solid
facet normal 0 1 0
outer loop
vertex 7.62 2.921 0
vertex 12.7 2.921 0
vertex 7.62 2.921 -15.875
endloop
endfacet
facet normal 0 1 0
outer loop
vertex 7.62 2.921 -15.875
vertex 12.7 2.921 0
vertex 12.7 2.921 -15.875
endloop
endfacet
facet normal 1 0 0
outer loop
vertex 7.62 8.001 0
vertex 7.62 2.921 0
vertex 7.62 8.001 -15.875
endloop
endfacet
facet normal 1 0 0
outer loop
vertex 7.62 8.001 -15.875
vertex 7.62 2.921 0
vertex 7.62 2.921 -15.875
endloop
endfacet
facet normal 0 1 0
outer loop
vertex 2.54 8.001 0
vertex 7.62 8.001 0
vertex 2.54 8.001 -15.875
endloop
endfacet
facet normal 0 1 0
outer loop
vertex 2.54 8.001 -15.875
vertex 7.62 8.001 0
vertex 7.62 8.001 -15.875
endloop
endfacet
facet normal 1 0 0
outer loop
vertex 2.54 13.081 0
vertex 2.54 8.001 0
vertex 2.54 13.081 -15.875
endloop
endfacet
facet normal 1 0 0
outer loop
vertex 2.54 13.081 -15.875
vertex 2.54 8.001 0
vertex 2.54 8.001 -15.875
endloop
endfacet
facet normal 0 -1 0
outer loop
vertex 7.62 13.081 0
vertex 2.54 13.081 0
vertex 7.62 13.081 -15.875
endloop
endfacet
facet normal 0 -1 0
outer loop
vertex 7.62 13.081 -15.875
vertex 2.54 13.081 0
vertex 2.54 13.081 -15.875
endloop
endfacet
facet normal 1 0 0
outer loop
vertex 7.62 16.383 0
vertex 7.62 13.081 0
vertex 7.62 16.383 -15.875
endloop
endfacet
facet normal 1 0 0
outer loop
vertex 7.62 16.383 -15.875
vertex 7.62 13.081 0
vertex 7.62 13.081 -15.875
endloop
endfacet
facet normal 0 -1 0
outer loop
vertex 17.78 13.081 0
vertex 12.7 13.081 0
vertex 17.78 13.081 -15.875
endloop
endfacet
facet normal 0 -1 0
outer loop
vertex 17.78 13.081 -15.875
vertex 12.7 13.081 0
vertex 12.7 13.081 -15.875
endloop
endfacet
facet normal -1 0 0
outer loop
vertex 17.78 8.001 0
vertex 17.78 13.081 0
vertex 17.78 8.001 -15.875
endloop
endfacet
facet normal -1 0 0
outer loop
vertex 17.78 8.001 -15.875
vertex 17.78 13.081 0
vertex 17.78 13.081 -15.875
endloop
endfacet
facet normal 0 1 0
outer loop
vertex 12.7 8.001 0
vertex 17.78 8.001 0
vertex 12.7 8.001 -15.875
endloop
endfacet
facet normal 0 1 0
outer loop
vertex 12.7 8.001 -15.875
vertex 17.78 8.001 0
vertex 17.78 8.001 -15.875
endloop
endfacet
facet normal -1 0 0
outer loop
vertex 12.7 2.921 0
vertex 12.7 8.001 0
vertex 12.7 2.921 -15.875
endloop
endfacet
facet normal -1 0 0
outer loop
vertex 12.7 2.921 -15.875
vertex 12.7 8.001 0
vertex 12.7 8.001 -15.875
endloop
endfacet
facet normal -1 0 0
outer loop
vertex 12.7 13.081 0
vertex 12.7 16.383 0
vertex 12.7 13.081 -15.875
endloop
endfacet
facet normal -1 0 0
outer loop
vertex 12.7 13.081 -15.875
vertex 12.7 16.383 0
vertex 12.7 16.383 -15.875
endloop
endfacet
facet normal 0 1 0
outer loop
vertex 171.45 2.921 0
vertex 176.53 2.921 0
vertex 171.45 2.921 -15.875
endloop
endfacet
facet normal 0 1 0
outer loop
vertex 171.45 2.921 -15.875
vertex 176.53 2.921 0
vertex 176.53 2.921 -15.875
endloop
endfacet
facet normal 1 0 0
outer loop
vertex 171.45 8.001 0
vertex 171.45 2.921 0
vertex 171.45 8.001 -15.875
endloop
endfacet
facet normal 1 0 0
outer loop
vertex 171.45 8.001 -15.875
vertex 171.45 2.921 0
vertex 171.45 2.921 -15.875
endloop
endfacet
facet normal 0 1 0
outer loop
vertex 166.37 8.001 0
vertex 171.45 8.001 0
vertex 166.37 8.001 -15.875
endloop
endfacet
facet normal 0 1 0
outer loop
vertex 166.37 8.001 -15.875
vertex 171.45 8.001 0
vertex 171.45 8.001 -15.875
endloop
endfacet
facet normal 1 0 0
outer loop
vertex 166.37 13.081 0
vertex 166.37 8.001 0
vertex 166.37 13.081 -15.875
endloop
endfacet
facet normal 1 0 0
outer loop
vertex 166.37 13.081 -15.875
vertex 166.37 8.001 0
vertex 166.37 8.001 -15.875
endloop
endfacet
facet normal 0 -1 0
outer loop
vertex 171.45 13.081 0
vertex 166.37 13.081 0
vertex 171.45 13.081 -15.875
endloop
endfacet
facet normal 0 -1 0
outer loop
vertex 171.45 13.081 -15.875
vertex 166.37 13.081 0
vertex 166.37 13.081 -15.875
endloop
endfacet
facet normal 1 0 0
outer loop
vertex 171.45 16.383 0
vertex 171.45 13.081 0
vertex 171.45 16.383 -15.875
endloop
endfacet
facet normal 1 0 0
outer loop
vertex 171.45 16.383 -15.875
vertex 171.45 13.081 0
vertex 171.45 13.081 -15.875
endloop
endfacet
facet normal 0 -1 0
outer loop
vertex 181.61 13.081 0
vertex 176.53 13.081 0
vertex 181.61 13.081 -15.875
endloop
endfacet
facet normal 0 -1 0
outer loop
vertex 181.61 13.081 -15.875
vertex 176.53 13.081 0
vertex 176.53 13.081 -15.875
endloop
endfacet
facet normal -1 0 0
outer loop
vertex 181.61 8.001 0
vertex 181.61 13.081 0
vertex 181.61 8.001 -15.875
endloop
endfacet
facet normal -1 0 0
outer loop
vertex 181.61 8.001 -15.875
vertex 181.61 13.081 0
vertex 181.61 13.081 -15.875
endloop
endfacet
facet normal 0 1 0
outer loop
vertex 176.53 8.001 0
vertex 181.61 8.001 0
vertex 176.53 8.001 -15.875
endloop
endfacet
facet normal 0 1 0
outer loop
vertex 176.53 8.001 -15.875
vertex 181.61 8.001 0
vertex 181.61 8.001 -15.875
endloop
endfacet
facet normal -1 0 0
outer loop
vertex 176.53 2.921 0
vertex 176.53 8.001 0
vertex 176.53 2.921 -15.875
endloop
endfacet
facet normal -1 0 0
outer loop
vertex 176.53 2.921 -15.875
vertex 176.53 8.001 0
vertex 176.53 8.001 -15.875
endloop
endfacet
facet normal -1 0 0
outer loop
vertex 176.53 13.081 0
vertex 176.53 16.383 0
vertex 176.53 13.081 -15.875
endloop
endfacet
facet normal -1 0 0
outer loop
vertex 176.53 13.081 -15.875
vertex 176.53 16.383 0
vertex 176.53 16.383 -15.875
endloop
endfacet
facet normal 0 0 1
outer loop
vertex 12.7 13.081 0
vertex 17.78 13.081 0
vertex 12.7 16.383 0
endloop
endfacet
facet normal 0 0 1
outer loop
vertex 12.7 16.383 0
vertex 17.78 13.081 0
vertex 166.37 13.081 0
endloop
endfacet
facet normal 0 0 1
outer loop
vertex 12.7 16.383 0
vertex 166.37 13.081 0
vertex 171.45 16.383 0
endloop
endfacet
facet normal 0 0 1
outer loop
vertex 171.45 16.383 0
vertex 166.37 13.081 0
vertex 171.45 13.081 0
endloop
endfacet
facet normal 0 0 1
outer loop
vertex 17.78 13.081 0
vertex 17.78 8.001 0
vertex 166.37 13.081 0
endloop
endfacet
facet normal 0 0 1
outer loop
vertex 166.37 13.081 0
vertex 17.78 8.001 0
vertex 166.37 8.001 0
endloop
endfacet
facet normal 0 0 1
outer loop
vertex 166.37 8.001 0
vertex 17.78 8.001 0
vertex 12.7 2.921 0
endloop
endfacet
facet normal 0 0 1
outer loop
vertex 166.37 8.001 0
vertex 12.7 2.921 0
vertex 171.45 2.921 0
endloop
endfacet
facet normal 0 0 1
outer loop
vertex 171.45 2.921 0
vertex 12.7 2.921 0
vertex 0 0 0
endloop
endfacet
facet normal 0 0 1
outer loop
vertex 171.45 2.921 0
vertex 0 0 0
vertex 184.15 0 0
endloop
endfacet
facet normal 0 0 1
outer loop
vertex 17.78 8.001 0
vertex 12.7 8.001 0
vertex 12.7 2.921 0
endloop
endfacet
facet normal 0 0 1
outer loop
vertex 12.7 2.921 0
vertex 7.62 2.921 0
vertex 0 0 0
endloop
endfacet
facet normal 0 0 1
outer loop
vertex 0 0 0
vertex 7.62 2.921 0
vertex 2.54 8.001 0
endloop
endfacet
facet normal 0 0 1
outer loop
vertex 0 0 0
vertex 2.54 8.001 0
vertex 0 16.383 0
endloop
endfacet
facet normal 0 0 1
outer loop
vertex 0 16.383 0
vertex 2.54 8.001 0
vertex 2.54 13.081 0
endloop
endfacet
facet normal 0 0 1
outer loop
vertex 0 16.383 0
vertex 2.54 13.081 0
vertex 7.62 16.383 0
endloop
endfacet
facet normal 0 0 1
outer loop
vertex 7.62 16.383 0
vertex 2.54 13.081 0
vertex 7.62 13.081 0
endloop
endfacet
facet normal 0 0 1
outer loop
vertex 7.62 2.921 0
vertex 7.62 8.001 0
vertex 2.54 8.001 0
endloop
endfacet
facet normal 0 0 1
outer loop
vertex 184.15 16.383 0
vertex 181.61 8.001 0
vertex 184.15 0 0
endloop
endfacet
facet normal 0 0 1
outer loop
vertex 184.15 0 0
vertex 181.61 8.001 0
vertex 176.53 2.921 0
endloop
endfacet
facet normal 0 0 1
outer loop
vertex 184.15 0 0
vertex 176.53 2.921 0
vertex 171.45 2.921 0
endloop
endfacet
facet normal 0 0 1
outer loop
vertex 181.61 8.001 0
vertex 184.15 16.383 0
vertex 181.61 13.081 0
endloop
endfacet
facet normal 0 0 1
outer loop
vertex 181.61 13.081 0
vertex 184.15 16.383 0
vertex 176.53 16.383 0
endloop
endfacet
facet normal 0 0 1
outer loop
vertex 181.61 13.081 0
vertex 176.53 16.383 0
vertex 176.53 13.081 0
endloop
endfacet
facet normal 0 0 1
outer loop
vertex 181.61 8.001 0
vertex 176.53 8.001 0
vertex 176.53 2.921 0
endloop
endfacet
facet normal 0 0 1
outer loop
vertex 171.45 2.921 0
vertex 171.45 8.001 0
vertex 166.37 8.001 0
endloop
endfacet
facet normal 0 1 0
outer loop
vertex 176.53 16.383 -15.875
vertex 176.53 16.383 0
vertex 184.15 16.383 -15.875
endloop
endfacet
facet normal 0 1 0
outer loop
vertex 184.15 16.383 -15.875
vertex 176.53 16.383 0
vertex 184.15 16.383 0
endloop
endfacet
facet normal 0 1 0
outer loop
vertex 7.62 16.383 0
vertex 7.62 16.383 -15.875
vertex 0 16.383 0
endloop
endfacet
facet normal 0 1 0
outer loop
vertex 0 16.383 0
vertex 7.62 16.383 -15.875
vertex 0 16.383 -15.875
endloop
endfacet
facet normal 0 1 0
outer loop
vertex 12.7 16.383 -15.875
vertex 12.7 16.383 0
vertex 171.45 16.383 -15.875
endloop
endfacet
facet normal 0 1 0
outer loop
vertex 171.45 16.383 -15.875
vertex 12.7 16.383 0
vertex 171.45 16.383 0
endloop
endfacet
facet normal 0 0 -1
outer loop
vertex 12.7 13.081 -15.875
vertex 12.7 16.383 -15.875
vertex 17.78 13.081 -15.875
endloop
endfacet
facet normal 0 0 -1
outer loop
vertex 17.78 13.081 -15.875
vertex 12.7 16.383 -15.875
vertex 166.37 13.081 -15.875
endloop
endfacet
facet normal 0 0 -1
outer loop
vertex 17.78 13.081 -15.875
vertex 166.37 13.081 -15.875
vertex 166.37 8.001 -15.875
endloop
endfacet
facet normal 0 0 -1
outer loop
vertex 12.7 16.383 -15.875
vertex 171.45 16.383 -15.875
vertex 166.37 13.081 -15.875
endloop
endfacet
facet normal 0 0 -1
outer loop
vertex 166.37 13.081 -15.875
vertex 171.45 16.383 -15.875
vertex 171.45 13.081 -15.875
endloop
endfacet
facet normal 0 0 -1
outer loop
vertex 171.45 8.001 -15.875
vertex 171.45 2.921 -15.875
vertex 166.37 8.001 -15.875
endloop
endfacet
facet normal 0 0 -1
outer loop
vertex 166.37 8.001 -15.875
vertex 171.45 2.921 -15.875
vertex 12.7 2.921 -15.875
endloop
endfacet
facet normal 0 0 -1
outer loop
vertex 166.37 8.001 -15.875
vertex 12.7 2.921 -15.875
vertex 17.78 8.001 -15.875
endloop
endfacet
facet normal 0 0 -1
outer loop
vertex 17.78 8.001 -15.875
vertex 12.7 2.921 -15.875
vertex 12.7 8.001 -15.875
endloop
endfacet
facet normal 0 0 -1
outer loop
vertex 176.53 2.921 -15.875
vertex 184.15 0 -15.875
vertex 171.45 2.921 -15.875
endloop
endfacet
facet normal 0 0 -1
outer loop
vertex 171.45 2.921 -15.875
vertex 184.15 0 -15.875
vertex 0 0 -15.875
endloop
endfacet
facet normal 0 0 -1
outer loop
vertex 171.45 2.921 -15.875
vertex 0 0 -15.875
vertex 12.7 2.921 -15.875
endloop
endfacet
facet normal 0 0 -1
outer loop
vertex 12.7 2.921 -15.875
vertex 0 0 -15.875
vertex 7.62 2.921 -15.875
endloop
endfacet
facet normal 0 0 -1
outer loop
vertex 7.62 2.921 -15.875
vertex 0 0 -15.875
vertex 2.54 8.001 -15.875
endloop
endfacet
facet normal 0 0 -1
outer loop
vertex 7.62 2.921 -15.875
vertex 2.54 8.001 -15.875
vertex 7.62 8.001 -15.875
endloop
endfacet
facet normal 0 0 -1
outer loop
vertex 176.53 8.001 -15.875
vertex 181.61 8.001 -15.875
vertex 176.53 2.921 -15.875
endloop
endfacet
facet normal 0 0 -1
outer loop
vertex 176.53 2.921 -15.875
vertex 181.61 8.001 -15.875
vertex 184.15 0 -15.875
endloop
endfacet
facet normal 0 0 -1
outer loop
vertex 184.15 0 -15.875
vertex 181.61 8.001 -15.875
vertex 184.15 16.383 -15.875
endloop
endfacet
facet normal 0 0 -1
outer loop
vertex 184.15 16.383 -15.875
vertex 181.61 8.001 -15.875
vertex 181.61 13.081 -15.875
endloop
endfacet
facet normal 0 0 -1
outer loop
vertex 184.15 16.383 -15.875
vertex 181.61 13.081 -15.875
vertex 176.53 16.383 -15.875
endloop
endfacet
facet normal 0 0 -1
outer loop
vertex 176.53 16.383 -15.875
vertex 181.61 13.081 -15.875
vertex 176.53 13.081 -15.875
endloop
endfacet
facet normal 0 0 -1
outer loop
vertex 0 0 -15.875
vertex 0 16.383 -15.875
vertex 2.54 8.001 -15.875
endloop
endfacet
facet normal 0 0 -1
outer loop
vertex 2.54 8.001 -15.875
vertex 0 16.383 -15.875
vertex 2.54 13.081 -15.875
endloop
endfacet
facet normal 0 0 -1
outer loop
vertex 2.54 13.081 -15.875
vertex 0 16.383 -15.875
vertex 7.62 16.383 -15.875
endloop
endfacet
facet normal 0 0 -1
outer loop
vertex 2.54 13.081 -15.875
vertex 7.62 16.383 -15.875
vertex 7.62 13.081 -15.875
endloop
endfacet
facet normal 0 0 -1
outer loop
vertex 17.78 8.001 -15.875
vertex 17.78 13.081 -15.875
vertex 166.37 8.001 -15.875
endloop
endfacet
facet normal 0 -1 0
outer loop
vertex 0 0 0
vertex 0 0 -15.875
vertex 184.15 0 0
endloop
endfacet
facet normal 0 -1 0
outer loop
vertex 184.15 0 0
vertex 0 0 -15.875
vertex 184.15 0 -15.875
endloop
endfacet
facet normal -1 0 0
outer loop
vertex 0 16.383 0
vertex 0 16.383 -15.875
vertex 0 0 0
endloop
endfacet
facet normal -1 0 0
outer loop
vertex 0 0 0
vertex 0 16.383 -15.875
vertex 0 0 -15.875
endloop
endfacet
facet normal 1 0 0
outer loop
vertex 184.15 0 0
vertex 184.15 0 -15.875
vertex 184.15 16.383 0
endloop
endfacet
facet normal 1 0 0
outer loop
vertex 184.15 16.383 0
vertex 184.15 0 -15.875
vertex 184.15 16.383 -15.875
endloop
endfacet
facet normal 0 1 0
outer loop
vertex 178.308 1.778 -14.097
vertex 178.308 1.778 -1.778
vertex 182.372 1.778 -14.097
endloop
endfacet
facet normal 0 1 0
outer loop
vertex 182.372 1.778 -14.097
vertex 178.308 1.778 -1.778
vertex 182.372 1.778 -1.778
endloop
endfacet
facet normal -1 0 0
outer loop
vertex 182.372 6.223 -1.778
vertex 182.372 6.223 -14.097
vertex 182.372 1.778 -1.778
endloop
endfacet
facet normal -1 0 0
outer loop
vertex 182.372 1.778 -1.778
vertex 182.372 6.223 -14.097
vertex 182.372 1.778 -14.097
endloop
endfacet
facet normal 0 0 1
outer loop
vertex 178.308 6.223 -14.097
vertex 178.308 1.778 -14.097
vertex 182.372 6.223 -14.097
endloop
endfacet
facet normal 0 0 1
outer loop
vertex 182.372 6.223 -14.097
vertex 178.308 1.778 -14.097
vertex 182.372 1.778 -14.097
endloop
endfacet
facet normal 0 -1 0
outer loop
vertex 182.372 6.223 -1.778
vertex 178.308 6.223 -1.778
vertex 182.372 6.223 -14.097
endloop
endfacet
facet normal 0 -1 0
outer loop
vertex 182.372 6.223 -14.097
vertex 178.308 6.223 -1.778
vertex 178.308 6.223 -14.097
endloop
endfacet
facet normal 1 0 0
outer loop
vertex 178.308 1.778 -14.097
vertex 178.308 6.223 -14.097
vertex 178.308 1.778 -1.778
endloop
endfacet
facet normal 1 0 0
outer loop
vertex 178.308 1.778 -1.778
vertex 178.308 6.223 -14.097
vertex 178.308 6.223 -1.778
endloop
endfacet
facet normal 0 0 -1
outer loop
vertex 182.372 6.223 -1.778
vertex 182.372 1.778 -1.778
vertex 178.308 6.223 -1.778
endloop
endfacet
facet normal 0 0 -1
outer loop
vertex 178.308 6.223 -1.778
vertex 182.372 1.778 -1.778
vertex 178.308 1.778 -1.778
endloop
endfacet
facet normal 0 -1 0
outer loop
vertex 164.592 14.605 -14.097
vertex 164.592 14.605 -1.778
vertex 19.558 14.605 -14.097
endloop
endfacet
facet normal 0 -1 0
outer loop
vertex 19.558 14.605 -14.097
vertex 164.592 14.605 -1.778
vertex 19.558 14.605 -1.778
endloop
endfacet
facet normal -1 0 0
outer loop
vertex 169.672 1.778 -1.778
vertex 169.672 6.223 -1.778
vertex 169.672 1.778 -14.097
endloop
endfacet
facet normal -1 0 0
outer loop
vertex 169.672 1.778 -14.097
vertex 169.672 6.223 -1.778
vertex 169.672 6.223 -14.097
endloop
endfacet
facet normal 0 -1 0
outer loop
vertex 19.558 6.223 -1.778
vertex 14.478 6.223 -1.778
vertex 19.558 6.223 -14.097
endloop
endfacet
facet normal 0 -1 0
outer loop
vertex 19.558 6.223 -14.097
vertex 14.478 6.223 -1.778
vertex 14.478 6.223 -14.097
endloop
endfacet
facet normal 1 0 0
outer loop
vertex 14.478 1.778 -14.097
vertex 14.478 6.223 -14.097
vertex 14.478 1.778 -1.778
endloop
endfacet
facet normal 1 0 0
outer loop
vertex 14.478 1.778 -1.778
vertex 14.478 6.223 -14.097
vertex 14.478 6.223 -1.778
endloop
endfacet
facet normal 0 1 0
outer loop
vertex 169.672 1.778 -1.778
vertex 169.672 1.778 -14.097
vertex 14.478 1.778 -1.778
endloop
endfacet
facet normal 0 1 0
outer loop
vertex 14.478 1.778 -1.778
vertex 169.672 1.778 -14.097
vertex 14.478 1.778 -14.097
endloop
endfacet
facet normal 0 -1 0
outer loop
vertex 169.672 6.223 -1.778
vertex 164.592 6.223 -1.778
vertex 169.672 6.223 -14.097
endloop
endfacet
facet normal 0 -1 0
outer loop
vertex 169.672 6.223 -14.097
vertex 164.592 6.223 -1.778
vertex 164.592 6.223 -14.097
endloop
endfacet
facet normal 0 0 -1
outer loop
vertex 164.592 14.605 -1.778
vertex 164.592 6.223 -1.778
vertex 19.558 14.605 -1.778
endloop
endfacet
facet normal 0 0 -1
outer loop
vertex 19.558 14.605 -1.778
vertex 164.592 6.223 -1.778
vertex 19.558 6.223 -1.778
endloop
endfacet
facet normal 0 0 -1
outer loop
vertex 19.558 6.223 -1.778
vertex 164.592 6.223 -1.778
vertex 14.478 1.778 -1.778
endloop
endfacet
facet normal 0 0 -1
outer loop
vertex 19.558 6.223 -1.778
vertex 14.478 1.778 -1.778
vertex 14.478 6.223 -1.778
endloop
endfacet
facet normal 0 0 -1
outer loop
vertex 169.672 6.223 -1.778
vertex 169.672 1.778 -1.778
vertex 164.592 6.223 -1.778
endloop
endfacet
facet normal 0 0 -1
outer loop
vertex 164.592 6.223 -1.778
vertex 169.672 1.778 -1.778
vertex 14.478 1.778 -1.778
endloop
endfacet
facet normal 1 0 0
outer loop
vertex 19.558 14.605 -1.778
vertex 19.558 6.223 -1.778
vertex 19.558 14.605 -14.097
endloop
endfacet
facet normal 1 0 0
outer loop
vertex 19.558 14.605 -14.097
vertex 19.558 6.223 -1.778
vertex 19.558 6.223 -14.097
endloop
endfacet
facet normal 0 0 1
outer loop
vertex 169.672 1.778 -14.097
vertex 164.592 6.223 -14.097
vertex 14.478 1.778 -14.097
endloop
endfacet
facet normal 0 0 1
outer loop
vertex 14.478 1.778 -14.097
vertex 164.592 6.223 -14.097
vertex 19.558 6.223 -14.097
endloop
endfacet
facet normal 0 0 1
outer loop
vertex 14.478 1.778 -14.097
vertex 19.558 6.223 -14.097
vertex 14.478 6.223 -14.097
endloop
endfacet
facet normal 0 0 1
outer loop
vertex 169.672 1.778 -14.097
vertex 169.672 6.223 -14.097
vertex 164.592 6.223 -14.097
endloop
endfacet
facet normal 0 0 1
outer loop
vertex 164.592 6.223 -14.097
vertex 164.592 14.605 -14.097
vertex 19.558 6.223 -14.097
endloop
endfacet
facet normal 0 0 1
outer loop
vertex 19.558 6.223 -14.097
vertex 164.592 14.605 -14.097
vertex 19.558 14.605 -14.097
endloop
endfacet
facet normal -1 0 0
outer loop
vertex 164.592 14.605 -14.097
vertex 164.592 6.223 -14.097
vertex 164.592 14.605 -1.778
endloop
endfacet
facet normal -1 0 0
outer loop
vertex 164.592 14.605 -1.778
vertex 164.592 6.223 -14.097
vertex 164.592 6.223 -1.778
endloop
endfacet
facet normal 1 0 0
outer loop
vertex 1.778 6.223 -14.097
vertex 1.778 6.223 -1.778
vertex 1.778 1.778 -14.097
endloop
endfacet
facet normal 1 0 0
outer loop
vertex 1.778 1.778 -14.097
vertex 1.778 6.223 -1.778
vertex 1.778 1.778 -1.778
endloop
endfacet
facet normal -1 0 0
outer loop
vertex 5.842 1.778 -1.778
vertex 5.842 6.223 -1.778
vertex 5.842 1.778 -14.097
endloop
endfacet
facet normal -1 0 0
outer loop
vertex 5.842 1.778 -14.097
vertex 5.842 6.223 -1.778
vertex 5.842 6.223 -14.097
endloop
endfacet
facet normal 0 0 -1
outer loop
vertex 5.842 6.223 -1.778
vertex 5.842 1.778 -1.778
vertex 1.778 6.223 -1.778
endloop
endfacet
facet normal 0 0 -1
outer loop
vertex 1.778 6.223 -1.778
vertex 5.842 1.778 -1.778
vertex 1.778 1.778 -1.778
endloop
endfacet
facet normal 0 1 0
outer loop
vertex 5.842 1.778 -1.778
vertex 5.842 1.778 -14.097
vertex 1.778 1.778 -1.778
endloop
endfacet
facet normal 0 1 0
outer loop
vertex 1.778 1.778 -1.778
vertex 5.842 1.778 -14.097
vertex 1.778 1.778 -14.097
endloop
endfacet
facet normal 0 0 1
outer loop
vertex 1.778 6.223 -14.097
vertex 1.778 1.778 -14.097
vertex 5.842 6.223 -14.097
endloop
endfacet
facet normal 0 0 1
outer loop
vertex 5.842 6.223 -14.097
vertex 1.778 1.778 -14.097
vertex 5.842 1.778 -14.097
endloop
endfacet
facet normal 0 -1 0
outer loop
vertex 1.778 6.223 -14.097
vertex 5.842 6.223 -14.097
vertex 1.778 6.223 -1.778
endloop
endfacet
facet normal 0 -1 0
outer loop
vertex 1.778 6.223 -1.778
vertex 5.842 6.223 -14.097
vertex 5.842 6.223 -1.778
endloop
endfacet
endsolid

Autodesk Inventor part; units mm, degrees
ref_plane "YZ Plane" through (0, 0, 0) normal (1, 0, 0) x (0, 1, 0)
ref_plane "XZ Plane" through (0, 0, 0) normal (0, 1, 0) x (-1, 0, 0)
ref_plane "XY Plane" through (0, 0, 0) normal (0, 0, 1) x (1, 0, 0)
sketch "Sketch1" plane through (0, 0, 0) normal (1, 0, 0) x (0, 1, 0)
  line L0 (0, 0) -> (16.383, 0)
  line L1 (16.383, 0) -> (16.383, -15.875)
  line L2 (16.383, -15.875) -> (0, -15.875)
  line L3 (0, -15.875) -> (0, 0)
  dimension "d0" = 16.383
  dimension "d1" = 15.875
extrude "Extrusion1" add sketch "Sketch1" along normal blind 184.15
sketch "Sketch2" plane through (0, 0, -15.875) normal (0, 0, -1) x (-1, 0, 0)
  line L0 (-184.15, 16.383) -> (-184.15, 0) projected
  line L1 (-184.15, 16.383) -> (-176.53, 16.383)
  line L2 (0, 16.383) -> (-184.15, 16.383) projected
  line L3 (-176.53, 16.383) -> (-176.53, 13.081)
  line L4 (-176.53, 13.081) -> (-181.61, 13.081)
  line L5 (-181.61, 13.081) -> (-181.61, 8.001)
  line L6 (-181.61, 8.001) -> (-176.53, 8.001)
  line L7 (-176.53, 8.001) -> (-176.53, 2.921)
  line L8 (-176.53, 2.921) -> (-171.45, 2.921)
  line L9 (-171.45, 2.921) -> (-171.45, 8.001)
  line L10 (-171.45, 8.001) -> (-166.37, 8.001)
  line L11 (-166.37, 8.001) -> (-166.37, 13.081)
  line L12 (-166.37, 13.081) -> (-171.45, 13.081)
  line L13 (-171.45, 16.383) -> (-171.45, 13.081)
  line L14 (0, 16.383) -> (-7.62, 16.383)
  line L15 (-7.62, 16.383) -> (-7.62, 13.081)
  line L16 (-7.62, 13.081) -> (-2.54, 13.081)
  line L17 (-2.54, 13.081) -> (-2.54, 8.001)
  line L18 (-2.54, 8.001) -> (-7.62, 8.001)
  line L19 (-7.62, 8.001) -> (-7.62, 2.921)
  line L20 (-7.62, 2.921) -> (-12.7, 2.921)
  line L21 (-12.7, 2.921) -> (-12.7, 8.001)
  line L22 (-12.7, 8.001) -> (-17.78, 8.001)
  line L23 (-17.78, 8.001) -> (-17.78, 13.081)
  line L24 (-17.78, 13.081) -> (-12.7, 13.081)
  line L25 (-12.7, 13.081) -> (-12.7, 16.383)
  point P0 (0, 0)
  dimension "d4" = 7.62
  dimension "d5" = 3.302
  dimension "d6" = 5.08
  dimension "d7" = 5.08
  dimension "d8" = 5.08
  dimension "d9" = 5.08
  dimension "d10" = 5.08
  dimension "d11" = 7.62
  dimension "d12" = 3.302
  dimension "d13" = 5.08
  dimension "d14" = 5.08
  dimension "d15" = 5.08
extrude "Extrusion2" cut sketch "Sketch2" against normal blind 184.15
shell "Shell1" thickness 1.778 removed faces 0
properties part number "horzntalconnection"
